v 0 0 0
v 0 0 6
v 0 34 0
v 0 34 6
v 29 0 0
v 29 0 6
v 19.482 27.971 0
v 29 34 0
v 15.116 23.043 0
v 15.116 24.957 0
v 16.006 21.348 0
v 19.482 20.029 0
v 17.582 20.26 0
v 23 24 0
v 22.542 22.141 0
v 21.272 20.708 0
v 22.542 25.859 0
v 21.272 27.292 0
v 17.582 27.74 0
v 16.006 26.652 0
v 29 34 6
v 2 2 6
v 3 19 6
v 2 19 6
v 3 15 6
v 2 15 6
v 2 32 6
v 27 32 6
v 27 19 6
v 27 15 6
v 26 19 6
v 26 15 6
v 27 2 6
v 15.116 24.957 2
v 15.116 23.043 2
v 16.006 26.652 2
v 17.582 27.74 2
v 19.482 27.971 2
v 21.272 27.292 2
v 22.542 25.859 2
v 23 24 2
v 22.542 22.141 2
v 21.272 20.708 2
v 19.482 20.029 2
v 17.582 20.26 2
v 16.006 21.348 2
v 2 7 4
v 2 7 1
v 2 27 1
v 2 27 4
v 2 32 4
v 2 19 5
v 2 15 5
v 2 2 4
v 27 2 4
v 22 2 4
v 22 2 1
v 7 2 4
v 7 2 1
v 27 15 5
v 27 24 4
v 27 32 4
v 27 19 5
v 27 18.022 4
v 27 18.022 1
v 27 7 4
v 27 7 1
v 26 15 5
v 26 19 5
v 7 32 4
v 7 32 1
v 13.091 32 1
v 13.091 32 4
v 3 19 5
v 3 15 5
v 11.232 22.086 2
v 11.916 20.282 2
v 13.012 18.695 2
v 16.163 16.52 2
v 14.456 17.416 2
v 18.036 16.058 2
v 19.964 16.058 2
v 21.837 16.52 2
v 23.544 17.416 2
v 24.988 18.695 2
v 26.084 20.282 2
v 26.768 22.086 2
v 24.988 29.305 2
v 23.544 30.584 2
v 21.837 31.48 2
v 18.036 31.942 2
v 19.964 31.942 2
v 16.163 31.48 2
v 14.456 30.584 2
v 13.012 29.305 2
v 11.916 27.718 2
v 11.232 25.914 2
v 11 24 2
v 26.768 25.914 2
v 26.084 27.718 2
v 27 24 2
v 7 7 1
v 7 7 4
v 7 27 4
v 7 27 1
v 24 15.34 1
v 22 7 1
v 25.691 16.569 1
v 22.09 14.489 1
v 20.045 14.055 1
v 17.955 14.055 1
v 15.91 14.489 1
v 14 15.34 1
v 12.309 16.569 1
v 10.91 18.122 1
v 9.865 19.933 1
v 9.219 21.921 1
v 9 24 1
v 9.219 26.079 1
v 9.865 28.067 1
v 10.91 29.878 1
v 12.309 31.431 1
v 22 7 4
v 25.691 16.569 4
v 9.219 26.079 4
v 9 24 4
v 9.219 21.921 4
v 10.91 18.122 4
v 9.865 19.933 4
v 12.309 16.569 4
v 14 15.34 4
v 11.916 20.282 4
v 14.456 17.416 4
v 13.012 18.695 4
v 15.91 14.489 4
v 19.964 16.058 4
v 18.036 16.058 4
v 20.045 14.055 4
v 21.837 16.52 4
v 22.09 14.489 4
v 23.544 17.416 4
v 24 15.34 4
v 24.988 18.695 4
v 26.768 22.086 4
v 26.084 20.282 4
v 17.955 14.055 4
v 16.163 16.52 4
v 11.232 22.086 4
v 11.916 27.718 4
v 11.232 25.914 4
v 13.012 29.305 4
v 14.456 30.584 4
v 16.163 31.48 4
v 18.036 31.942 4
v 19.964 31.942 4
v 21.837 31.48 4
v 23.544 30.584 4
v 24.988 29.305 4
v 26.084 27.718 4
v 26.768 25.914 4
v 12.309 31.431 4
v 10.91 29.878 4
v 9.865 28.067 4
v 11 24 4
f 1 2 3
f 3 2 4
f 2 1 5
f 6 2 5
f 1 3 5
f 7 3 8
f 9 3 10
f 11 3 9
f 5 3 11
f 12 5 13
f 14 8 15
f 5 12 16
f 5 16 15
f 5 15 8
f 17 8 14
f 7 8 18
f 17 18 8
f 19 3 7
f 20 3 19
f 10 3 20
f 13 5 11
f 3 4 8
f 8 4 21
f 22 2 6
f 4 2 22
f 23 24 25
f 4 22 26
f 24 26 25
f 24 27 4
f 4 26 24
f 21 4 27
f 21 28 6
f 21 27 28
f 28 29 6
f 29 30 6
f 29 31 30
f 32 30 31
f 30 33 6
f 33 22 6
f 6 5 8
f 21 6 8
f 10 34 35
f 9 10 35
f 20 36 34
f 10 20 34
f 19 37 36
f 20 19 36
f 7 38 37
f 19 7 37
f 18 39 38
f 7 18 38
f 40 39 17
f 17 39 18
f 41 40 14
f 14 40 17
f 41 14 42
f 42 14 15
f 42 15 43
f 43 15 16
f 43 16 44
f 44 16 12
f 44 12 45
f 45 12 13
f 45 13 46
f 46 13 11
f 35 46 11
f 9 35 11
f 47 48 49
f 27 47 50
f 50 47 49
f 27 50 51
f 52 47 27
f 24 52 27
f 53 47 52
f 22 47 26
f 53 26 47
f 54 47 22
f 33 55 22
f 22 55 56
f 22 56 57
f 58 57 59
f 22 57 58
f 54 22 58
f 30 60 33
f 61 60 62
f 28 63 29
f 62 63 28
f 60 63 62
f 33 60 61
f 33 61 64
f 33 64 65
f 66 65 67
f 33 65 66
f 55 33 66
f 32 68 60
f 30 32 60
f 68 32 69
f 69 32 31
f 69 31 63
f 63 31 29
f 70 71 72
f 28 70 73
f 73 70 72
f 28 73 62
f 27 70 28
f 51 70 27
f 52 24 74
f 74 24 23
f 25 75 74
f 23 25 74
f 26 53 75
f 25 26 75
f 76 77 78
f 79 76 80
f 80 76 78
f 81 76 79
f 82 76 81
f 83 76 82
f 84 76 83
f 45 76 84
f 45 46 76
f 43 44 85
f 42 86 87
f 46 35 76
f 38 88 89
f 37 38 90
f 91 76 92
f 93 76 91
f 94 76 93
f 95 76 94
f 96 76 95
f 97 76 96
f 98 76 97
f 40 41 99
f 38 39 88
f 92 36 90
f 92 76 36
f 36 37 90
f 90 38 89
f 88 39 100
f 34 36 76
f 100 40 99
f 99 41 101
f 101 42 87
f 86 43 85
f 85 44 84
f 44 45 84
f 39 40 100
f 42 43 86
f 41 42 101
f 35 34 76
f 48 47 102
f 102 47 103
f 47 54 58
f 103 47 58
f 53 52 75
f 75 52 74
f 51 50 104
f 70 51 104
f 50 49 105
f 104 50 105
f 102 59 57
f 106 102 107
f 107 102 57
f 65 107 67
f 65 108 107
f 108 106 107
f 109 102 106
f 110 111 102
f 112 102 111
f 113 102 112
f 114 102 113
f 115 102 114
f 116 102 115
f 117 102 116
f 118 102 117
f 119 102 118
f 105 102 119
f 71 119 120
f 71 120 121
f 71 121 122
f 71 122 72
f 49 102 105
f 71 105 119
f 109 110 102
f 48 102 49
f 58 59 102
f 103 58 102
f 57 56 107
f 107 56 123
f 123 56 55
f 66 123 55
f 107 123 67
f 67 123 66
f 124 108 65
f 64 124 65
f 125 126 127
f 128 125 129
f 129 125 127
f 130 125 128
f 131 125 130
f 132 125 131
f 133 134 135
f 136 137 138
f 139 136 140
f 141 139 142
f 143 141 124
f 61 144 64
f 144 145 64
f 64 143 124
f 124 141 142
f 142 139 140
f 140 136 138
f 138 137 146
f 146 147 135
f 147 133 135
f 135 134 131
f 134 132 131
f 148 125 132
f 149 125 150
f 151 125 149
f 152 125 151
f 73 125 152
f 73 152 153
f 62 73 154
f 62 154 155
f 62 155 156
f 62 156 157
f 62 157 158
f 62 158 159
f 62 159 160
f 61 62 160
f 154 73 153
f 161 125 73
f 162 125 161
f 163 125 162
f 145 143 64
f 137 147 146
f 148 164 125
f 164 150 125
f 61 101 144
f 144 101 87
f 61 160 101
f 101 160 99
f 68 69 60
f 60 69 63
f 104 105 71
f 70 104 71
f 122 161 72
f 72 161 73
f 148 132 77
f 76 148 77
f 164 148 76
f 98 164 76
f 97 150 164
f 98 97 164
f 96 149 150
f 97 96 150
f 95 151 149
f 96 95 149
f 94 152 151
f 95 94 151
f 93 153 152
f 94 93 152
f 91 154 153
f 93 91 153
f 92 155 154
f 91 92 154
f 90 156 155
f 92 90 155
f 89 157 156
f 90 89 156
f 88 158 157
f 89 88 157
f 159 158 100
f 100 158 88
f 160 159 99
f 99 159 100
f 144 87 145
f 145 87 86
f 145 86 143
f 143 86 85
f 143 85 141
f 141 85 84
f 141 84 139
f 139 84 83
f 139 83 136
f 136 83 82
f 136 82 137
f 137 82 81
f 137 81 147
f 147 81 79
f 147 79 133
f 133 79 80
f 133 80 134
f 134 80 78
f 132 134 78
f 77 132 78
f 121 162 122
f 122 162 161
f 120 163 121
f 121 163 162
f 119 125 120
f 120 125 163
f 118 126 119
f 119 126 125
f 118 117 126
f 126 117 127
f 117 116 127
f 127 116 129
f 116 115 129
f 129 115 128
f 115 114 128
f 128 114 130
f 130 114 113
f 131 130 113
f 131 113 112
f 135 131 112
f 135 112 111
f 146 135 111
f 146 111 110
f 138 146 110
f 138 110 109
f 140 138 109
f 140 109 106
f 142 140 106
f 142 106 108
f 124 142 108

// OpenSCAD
module trove(xsize, ysize) {
	difference() {
		cube(size=[xsize,ysize,6]);
		translate([2,2,1])
			cube(size=[xsize-4,ysize-4,5]);
	}
   // auflagen
	translate([2,2,0])
		cube(size=[5,5,4]);
	translate([xsize-7,2,0])
		cube(size=[5,5,4]);
	translate([2,ysize-7,0])
		cube(size=[5,5,4]);
	translate([xsize-7,ysize-7,0])
		cube(size=[5,5,4]);

	//nubsies
	translate([2, (ysize/2)-2, 5])
		cube(size=[1,4,1]);
	translate([xsize-3, (ysize/2)-2, 5])
		cube(size=[1,4,1]);
}

module trove_with_hole(xsize, ysize, xpos, ypos) {
	difference() {	
		union() {
			trove(xsize, ysize);
			translate([xpos,ypos,0])
			cylinder(h=4, r=10);	
		}	
		translate([xpos,ypos,0])
			cylinder(h=4, r=4);
		translate([xpos,ypos,2])
			cylinder(h=2, r=8);
	}
}

trove_with_hole(25+4,30+4, 19,24);
